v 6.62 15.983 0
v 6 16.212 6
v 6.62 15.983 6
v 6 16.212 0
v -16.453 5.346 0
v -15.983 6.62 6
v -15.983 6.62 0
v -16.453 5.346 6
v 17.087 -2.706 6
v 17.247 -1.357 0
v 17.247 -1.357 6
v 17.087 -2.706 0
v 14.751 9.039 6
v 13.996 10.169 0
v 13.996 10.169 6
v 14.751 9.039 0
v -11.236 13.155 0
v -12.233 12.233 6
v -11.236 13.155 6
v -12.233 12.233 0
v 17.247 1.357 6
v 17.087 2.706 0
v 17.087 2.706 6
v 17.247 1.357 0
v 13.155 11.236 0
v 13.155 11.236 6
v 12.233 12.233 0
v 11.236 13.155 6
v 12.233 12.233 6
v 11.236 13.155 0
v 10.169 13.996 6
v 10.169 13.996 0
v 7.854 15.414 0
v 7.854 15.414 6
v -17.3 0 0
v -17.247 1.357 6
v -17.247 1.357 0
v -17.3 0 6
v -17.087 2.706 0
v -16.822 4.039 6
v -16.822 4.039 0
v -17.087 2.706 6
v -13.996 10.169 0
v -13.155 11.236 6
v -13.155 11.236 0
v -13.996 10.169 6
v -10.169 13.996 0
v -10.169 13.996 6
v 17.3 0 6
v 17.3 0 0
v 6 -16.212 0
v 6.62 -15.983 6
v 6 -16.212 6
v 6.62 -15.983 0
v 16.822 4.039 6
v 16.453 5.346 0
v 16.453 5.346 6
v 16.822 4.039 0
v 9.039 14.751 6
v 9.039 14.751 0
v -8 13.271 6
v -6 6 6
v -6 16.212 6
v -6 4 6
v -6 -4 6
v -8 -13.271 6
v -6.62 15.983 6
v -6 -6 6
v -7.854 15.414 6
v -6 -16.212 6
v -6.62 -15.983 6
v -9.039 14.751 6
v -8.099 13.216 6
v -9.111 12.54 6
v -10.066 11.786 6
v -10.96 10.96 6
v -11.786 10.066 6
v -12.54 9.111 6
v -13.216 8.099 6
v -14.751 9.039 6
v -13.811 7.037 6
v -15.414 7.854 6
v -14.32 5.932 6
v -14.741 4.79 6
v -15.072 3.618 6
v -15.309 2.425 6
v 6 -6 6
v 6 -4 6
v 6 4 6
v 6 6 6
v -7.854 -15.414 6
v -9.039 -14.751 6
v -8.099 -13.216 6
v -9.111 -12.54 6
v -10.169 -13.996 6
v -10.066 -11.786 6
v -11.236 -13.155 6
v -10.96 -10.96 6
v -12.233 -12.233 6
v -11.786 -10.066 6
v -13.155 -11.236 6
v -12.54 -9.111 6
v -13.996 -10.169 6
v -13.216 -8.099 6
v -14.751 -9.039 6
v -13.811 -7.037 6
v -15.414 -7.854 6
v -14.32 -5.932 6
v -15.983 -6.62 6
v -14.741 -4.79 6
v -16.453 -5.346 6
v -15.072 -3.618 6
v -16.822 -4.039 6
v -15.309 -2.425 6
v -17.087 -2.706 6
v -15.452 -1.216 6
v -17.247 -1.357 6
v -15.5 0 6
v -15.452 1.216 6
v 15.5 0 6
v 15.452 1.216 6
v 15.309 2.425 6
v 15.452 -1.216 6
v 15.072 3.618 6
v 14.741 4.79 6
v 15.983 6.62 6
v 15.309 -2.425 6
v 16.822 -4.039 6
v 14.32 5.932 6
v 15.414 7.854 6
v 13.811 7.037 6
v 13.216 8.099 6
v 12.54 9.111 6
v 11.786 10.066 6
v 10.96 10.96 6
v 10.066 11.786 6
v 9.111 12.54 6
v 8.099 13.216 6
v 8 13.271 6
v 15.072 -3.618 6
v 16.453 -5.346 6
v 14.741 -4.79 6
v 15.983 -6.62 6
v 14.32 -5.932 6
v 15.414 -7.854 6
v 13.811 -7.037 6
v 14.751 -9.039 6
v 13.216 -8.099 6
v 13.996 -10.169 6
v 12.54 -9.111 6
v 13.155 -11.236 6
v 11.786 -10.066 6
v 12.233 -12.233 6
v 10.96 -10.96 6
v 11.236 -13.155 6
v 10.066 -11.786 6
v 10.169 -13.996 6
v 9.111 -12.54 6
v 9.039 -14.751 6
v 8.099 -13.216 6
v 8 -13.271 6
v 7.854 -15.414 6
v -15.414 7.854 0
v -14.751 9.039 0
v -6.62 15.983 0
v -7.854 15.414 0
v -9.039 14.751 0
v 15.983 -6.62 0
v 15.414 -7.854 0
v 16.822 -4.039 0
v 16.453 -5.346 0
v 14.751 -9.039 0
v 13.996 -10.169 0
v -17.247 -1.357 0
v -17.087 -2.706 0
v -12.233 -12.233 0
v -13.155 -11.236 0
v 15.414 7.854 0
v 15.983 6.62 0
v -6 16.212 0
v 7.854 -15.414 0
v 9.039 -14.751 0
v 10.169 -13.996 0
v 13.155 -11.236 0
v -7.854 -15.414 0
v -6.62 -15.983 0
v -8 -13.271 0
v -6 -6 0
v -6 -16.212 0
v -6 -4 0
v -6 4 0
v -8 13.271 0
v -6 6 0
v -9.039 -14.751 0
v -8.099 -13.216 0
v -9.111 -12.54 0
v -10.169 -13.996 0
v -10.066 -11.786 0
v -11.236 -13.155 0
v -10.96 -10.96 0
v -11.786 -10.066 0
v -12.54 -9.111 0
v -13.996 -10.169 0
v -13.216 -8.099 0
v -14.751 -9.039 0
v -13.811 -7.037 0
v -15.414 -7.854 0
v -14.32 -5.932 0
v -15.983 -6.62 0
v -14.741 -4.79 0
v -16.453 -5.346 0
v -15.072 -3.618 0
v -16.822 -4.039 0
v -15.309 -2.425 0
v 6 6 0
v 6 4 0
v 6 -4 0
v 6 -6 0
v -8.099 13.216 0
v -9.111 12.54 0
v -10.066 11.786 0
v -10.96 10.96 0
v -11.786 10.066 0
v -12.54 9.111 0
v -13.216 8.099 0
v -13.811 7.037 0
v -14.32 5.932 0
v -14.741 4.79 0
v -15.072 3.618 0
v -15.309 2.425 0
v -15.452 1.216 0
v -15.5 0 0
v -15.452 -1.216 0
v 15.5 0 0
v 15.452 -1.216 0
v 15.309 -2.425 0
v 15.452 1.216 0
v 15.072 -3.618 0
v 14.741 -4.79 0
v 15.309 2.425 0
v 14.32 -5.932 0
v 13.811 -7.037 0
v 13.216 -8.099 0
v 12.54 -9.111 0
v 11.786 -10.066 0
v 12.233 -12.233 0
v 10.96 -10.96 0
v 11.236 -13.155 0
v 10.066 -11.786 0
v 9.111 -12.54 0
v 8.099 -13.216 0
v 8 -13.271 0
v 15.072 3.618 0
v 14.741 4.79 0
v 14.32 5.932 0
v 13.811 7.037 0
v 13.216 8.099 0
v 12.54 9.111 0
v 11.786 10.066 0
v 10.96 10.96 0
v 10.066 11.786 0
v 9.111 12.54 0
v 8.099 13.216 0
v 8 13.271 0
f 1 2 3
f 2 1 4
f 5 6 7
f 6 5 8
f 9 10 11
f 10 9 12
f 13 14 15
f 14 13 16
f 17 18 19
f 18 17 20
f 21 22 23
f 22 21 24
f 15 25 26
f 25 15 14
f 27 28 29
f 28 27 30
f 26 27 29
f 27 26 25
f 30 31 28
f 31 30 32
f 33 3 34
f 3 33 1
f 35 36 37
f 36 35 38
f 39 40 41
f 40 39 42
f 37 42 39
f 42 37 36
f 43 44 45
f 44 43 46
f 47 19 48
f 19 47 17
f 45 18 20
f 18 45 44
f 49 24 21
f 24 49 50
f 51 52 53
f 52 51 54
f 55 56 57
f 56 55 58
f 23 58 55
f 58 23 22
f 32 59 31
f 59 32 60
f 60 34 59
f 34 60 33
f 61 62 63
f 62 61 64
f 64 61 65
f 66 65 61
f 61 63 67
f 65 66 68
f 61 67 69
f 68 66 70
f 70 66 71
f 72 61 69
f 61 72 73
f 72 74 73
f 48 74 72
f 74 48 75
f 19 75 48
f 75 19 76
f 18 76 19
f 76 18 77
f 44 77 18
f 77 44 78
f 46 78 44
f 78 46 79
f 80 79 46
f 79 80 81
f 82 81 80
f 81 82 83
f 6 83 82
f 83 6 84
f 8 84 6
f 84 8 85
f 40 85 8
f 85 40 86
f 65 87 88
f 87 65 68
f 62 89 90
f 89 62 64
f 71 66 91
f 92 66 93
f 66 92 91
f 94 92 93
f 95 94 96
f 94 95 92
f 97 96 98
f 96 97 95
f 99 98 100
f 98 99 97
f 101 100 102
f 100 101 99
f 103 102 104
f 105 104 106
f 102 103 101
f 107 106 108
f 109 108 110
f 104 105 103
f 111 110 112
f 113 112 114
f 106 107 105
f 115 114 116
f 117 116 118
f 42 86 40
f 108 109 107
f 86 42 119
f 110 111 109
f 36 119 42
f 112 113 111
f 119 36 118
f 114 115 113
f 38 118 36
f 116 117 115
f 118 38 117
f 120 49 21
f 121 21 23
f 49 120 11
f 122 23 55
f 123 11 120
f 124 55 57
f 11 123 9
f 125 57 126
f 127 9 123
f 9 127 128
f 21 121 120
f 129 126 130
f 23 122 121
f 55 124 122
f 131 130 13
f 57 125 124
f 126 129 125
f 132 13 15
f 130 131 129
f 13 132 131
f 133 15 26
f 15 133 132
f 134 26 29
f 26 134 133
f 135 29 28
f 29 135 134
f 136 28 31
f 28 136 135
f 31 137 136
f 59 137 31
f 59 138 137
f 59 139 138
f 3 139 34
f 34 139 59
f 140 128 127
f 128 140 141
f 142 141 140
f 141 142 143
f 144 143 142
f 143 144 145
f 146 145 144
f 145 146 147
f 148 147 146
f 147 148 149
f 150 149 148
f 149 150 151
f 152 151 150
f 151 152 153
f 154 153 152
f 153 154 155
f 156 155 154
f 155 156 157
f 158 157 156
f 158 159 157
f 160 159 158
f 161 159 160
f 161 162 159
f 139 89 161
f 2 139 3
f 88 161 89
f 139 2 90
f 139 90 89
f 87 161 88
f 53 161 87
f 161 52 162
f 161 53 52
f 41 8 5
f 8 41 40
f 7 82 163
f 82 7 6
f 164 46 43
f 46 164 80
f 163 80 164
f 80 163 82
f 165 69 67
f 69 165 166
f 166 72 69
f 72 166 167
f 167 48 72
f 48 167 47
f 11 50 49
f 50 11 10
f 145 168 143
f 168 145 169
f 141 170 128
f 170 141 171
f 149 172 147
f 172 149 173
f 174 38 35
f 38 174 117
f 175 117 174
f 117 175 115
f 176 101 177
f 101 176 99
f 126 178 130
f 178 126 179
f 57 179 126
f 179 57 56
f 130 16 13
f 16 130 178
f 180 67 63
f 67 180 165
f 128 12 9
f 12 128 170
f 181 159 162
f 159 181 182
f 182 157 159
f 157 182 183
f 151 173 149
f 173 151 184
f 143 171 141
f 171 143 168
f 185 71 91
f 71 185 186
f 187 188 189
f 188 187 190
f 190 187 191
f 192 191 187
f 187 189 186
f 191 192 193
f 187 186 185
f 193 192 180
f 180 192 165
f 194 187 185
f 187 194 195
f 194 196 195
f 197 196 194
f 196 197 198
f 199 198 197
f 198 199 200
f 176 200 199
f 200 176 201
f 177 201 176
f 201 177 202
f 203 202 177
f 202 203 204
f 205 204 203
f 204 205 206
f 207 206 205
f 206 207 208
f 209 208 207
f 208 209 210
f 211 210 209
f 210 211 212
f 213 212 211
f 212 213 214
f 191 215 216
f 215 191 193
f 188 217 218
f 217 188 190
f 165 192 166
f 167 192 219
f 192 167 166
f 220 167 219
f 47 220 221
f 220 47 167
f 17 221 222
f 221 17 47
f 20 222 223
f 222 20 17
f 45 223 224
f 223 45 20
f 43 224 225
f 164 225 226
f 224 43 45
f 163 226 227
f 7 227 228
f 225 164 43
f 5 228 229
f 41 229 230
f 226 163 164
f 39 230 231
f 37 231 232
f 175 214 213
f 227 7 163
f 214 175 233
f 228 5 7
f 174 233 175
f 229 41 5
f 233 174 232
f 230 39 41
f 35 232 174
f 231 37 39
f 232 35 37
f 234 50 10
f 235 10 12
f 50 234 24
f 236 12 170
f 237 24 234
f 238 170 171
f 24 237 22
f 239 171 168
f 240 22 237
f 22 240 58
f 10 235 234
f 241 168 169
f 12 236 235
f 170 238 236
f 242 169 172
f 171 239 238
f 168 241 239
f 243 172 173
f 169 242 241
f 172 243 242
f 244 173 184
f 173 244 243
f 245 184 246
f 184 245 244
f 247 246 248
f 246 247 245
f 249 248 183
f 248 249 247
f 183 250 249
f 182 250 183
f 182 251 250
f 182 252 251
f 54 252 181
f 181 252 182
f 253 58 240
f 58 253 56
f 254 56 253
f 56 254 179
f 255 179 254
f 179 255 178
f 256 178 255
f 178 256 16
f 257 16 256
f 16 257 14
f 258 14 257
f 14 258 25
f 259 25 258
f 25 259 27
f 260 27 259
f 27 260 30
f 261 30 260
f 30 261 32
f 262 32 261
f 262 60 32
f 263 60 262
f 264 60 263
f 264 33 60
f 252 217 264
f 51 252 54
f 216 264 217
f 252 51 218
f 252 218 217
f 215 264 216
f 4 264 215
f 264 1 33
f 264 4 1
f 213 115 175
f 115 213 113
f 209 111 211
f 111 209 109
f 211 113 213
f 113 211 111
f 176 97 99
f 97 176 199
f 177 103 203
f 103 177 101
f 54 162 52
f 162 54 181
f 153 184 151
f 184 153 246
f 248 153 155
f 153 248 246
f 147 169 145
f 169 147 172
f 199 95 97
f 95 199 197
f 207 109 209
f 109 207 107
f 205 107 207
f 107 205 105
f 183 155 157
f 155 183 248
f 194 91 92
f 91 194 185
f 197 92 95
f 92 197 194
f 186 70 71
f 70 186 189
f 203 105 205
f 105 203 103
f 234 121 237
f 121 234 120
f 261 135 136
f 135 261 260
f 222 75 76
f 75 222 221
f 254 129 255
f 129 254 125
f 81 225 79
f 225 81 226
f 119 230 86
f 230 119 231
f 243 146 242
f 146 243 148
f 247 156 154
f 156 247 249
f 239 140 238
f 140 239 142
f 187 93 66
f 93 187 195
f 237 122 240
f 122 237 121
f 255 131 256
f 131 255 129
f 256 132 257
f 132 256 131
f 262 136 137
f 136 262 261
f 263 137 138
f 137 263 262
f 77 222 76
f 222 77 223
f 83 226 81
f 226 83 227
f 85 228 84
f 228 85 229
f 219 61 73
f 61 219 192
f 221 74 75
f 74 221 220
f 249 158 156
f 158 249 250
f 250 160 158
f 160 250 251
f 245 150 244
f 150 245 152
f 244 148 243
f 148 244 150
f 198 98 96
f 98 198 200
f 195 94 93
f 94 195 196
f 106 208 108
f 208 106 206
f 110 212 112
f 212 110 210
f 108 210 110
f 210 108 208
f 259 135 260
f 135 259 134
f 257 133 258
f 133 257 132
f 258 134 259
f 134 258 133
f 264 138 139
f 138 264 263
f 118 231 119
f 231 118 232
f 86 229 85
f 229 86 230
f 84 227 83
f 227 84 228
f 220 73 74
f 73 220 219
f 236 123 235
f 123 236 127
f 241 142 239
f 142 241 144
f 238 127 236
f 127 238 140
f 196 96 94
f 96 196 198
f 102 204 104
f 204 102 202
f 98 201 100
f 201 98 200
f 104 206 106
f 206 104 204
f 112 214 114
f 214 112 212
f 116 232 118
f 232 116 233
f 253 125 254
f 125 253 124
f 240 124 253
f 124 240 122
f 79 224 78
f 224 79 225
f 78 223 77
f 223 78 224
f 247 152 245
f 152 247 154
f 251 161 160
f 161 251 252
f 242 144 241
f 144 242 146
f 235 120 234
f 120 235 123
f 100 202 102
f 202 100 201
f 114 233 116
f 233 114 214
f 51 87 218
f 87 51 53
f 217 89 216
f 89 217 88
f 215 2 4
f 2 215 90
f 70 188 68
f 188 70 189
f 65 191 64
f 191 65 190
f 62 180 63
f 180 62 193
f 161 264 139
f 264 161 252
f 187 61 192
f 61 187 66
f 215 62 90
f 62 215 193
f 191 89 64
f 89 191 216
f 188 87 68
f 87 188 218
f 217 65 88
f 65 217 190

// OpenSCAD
// file: variables.scad
// General

resolution = 80;
delta = 0.2;

// dimensions tubes pvc

rayon_ext_tube_32 = 16;
rayon_int_tube_32 = 13;
epaisseur_tube_32 = rayon_ext_tube_32 - rayon_int_tube_32;

rayon_ext_tube_40 = 20;
rayon_int_tube_40 = 17.5;
epaisseur_tube_40 = rayon_ext_tube_40 - rayon_int_tube_40;

ret32 = rayon_ext_tube_32;
rit32 = rayon_int_tube_32;
ep32  = epaisseur_tube_32;
ret40 = rayon_ext_tube_40;
rit40 = rayon_int_tube_40;
ep40  = epaisseur_tube_40;

// Reducteur

epaisseur_reducteur = 4;

// L'embout accueille un tube pvc de 40mm de diamètre.

hauteur_embout = 20;
rayon_int_embout = rayon_ext_tube_40 + delta;
rayon_ext_embout = 24 + delta;

hauteur_butee = 2;
rayon_int_butee = 16;

// Jonction: section de contact entre les deux pièces.
hauteur_grower = 8;

rayon_ext_culot = rayon_ext_tube_40 - delta;
rayon_int_culot = 18 - delta;
hauteur_jonction = 30;

hauteur_totale = hauteur_jonction + hauteur_embout + hauteur_butee + hauteur_grower;

profondeur_douille = 12;

largeur_empreinte = 6;

position_z_empreinte = hauteur_totale - profondeur_douille + 1;

nb_baionette = 3;
rayon_baionette = largeur_empreinte / 2;
baionette_z = hauteur_totale - (hauteur_jonction - profondeur_douille);
// file: common.scad
module tube(hauteur, rayon_exterieur, rayon_interieur, resolution=60) {
	difference(){
	  cylinder(hauteur, rayon_exterieur, rayon_exterieur, $fn=resolution);
	  translate([0,0,-1])	
	 	  cylinder(hauteur + 2 , rayon_interieur, rayon_interieur, $fn=resolution);
	}
}

module donut(nombre_spheres, rayon_spheres, rayon_exterieur){
	for ( i= [0:nombre_spheres])
		rotate([0,0,i*(360/nombre_spheres)]) {
			translate([rayon_exterieur,0,0])
			sphere(rayon_spheres, $fn=resolution_spheres);
		}
}
// main file
include <common.scad>;
include <variables.scad>;

h_cale = 6;

intersection() {
  tube(h_cale, rit40-delta, rit40-2, resolution);
  union() {
    translate([6,-rit40,0])
      cube([rit40, rit40*2, h_cale]);
    translate([-(6+rit40),-rit40,0])
      cube([rit40, rit40*2, h_cale]);
  }
}

translate([6,-rit40+3,0])
  cube([2, rit40*2-6, h_cale]);

translate([-8,-rit40+3,0])
  cube([2, rit40*2-6, h_cale]);

translate([-6,4,0])
  cube([12, 2, h_cale]);

translate([-6,-6,0])
  cube([12, 2, h_cale]);
